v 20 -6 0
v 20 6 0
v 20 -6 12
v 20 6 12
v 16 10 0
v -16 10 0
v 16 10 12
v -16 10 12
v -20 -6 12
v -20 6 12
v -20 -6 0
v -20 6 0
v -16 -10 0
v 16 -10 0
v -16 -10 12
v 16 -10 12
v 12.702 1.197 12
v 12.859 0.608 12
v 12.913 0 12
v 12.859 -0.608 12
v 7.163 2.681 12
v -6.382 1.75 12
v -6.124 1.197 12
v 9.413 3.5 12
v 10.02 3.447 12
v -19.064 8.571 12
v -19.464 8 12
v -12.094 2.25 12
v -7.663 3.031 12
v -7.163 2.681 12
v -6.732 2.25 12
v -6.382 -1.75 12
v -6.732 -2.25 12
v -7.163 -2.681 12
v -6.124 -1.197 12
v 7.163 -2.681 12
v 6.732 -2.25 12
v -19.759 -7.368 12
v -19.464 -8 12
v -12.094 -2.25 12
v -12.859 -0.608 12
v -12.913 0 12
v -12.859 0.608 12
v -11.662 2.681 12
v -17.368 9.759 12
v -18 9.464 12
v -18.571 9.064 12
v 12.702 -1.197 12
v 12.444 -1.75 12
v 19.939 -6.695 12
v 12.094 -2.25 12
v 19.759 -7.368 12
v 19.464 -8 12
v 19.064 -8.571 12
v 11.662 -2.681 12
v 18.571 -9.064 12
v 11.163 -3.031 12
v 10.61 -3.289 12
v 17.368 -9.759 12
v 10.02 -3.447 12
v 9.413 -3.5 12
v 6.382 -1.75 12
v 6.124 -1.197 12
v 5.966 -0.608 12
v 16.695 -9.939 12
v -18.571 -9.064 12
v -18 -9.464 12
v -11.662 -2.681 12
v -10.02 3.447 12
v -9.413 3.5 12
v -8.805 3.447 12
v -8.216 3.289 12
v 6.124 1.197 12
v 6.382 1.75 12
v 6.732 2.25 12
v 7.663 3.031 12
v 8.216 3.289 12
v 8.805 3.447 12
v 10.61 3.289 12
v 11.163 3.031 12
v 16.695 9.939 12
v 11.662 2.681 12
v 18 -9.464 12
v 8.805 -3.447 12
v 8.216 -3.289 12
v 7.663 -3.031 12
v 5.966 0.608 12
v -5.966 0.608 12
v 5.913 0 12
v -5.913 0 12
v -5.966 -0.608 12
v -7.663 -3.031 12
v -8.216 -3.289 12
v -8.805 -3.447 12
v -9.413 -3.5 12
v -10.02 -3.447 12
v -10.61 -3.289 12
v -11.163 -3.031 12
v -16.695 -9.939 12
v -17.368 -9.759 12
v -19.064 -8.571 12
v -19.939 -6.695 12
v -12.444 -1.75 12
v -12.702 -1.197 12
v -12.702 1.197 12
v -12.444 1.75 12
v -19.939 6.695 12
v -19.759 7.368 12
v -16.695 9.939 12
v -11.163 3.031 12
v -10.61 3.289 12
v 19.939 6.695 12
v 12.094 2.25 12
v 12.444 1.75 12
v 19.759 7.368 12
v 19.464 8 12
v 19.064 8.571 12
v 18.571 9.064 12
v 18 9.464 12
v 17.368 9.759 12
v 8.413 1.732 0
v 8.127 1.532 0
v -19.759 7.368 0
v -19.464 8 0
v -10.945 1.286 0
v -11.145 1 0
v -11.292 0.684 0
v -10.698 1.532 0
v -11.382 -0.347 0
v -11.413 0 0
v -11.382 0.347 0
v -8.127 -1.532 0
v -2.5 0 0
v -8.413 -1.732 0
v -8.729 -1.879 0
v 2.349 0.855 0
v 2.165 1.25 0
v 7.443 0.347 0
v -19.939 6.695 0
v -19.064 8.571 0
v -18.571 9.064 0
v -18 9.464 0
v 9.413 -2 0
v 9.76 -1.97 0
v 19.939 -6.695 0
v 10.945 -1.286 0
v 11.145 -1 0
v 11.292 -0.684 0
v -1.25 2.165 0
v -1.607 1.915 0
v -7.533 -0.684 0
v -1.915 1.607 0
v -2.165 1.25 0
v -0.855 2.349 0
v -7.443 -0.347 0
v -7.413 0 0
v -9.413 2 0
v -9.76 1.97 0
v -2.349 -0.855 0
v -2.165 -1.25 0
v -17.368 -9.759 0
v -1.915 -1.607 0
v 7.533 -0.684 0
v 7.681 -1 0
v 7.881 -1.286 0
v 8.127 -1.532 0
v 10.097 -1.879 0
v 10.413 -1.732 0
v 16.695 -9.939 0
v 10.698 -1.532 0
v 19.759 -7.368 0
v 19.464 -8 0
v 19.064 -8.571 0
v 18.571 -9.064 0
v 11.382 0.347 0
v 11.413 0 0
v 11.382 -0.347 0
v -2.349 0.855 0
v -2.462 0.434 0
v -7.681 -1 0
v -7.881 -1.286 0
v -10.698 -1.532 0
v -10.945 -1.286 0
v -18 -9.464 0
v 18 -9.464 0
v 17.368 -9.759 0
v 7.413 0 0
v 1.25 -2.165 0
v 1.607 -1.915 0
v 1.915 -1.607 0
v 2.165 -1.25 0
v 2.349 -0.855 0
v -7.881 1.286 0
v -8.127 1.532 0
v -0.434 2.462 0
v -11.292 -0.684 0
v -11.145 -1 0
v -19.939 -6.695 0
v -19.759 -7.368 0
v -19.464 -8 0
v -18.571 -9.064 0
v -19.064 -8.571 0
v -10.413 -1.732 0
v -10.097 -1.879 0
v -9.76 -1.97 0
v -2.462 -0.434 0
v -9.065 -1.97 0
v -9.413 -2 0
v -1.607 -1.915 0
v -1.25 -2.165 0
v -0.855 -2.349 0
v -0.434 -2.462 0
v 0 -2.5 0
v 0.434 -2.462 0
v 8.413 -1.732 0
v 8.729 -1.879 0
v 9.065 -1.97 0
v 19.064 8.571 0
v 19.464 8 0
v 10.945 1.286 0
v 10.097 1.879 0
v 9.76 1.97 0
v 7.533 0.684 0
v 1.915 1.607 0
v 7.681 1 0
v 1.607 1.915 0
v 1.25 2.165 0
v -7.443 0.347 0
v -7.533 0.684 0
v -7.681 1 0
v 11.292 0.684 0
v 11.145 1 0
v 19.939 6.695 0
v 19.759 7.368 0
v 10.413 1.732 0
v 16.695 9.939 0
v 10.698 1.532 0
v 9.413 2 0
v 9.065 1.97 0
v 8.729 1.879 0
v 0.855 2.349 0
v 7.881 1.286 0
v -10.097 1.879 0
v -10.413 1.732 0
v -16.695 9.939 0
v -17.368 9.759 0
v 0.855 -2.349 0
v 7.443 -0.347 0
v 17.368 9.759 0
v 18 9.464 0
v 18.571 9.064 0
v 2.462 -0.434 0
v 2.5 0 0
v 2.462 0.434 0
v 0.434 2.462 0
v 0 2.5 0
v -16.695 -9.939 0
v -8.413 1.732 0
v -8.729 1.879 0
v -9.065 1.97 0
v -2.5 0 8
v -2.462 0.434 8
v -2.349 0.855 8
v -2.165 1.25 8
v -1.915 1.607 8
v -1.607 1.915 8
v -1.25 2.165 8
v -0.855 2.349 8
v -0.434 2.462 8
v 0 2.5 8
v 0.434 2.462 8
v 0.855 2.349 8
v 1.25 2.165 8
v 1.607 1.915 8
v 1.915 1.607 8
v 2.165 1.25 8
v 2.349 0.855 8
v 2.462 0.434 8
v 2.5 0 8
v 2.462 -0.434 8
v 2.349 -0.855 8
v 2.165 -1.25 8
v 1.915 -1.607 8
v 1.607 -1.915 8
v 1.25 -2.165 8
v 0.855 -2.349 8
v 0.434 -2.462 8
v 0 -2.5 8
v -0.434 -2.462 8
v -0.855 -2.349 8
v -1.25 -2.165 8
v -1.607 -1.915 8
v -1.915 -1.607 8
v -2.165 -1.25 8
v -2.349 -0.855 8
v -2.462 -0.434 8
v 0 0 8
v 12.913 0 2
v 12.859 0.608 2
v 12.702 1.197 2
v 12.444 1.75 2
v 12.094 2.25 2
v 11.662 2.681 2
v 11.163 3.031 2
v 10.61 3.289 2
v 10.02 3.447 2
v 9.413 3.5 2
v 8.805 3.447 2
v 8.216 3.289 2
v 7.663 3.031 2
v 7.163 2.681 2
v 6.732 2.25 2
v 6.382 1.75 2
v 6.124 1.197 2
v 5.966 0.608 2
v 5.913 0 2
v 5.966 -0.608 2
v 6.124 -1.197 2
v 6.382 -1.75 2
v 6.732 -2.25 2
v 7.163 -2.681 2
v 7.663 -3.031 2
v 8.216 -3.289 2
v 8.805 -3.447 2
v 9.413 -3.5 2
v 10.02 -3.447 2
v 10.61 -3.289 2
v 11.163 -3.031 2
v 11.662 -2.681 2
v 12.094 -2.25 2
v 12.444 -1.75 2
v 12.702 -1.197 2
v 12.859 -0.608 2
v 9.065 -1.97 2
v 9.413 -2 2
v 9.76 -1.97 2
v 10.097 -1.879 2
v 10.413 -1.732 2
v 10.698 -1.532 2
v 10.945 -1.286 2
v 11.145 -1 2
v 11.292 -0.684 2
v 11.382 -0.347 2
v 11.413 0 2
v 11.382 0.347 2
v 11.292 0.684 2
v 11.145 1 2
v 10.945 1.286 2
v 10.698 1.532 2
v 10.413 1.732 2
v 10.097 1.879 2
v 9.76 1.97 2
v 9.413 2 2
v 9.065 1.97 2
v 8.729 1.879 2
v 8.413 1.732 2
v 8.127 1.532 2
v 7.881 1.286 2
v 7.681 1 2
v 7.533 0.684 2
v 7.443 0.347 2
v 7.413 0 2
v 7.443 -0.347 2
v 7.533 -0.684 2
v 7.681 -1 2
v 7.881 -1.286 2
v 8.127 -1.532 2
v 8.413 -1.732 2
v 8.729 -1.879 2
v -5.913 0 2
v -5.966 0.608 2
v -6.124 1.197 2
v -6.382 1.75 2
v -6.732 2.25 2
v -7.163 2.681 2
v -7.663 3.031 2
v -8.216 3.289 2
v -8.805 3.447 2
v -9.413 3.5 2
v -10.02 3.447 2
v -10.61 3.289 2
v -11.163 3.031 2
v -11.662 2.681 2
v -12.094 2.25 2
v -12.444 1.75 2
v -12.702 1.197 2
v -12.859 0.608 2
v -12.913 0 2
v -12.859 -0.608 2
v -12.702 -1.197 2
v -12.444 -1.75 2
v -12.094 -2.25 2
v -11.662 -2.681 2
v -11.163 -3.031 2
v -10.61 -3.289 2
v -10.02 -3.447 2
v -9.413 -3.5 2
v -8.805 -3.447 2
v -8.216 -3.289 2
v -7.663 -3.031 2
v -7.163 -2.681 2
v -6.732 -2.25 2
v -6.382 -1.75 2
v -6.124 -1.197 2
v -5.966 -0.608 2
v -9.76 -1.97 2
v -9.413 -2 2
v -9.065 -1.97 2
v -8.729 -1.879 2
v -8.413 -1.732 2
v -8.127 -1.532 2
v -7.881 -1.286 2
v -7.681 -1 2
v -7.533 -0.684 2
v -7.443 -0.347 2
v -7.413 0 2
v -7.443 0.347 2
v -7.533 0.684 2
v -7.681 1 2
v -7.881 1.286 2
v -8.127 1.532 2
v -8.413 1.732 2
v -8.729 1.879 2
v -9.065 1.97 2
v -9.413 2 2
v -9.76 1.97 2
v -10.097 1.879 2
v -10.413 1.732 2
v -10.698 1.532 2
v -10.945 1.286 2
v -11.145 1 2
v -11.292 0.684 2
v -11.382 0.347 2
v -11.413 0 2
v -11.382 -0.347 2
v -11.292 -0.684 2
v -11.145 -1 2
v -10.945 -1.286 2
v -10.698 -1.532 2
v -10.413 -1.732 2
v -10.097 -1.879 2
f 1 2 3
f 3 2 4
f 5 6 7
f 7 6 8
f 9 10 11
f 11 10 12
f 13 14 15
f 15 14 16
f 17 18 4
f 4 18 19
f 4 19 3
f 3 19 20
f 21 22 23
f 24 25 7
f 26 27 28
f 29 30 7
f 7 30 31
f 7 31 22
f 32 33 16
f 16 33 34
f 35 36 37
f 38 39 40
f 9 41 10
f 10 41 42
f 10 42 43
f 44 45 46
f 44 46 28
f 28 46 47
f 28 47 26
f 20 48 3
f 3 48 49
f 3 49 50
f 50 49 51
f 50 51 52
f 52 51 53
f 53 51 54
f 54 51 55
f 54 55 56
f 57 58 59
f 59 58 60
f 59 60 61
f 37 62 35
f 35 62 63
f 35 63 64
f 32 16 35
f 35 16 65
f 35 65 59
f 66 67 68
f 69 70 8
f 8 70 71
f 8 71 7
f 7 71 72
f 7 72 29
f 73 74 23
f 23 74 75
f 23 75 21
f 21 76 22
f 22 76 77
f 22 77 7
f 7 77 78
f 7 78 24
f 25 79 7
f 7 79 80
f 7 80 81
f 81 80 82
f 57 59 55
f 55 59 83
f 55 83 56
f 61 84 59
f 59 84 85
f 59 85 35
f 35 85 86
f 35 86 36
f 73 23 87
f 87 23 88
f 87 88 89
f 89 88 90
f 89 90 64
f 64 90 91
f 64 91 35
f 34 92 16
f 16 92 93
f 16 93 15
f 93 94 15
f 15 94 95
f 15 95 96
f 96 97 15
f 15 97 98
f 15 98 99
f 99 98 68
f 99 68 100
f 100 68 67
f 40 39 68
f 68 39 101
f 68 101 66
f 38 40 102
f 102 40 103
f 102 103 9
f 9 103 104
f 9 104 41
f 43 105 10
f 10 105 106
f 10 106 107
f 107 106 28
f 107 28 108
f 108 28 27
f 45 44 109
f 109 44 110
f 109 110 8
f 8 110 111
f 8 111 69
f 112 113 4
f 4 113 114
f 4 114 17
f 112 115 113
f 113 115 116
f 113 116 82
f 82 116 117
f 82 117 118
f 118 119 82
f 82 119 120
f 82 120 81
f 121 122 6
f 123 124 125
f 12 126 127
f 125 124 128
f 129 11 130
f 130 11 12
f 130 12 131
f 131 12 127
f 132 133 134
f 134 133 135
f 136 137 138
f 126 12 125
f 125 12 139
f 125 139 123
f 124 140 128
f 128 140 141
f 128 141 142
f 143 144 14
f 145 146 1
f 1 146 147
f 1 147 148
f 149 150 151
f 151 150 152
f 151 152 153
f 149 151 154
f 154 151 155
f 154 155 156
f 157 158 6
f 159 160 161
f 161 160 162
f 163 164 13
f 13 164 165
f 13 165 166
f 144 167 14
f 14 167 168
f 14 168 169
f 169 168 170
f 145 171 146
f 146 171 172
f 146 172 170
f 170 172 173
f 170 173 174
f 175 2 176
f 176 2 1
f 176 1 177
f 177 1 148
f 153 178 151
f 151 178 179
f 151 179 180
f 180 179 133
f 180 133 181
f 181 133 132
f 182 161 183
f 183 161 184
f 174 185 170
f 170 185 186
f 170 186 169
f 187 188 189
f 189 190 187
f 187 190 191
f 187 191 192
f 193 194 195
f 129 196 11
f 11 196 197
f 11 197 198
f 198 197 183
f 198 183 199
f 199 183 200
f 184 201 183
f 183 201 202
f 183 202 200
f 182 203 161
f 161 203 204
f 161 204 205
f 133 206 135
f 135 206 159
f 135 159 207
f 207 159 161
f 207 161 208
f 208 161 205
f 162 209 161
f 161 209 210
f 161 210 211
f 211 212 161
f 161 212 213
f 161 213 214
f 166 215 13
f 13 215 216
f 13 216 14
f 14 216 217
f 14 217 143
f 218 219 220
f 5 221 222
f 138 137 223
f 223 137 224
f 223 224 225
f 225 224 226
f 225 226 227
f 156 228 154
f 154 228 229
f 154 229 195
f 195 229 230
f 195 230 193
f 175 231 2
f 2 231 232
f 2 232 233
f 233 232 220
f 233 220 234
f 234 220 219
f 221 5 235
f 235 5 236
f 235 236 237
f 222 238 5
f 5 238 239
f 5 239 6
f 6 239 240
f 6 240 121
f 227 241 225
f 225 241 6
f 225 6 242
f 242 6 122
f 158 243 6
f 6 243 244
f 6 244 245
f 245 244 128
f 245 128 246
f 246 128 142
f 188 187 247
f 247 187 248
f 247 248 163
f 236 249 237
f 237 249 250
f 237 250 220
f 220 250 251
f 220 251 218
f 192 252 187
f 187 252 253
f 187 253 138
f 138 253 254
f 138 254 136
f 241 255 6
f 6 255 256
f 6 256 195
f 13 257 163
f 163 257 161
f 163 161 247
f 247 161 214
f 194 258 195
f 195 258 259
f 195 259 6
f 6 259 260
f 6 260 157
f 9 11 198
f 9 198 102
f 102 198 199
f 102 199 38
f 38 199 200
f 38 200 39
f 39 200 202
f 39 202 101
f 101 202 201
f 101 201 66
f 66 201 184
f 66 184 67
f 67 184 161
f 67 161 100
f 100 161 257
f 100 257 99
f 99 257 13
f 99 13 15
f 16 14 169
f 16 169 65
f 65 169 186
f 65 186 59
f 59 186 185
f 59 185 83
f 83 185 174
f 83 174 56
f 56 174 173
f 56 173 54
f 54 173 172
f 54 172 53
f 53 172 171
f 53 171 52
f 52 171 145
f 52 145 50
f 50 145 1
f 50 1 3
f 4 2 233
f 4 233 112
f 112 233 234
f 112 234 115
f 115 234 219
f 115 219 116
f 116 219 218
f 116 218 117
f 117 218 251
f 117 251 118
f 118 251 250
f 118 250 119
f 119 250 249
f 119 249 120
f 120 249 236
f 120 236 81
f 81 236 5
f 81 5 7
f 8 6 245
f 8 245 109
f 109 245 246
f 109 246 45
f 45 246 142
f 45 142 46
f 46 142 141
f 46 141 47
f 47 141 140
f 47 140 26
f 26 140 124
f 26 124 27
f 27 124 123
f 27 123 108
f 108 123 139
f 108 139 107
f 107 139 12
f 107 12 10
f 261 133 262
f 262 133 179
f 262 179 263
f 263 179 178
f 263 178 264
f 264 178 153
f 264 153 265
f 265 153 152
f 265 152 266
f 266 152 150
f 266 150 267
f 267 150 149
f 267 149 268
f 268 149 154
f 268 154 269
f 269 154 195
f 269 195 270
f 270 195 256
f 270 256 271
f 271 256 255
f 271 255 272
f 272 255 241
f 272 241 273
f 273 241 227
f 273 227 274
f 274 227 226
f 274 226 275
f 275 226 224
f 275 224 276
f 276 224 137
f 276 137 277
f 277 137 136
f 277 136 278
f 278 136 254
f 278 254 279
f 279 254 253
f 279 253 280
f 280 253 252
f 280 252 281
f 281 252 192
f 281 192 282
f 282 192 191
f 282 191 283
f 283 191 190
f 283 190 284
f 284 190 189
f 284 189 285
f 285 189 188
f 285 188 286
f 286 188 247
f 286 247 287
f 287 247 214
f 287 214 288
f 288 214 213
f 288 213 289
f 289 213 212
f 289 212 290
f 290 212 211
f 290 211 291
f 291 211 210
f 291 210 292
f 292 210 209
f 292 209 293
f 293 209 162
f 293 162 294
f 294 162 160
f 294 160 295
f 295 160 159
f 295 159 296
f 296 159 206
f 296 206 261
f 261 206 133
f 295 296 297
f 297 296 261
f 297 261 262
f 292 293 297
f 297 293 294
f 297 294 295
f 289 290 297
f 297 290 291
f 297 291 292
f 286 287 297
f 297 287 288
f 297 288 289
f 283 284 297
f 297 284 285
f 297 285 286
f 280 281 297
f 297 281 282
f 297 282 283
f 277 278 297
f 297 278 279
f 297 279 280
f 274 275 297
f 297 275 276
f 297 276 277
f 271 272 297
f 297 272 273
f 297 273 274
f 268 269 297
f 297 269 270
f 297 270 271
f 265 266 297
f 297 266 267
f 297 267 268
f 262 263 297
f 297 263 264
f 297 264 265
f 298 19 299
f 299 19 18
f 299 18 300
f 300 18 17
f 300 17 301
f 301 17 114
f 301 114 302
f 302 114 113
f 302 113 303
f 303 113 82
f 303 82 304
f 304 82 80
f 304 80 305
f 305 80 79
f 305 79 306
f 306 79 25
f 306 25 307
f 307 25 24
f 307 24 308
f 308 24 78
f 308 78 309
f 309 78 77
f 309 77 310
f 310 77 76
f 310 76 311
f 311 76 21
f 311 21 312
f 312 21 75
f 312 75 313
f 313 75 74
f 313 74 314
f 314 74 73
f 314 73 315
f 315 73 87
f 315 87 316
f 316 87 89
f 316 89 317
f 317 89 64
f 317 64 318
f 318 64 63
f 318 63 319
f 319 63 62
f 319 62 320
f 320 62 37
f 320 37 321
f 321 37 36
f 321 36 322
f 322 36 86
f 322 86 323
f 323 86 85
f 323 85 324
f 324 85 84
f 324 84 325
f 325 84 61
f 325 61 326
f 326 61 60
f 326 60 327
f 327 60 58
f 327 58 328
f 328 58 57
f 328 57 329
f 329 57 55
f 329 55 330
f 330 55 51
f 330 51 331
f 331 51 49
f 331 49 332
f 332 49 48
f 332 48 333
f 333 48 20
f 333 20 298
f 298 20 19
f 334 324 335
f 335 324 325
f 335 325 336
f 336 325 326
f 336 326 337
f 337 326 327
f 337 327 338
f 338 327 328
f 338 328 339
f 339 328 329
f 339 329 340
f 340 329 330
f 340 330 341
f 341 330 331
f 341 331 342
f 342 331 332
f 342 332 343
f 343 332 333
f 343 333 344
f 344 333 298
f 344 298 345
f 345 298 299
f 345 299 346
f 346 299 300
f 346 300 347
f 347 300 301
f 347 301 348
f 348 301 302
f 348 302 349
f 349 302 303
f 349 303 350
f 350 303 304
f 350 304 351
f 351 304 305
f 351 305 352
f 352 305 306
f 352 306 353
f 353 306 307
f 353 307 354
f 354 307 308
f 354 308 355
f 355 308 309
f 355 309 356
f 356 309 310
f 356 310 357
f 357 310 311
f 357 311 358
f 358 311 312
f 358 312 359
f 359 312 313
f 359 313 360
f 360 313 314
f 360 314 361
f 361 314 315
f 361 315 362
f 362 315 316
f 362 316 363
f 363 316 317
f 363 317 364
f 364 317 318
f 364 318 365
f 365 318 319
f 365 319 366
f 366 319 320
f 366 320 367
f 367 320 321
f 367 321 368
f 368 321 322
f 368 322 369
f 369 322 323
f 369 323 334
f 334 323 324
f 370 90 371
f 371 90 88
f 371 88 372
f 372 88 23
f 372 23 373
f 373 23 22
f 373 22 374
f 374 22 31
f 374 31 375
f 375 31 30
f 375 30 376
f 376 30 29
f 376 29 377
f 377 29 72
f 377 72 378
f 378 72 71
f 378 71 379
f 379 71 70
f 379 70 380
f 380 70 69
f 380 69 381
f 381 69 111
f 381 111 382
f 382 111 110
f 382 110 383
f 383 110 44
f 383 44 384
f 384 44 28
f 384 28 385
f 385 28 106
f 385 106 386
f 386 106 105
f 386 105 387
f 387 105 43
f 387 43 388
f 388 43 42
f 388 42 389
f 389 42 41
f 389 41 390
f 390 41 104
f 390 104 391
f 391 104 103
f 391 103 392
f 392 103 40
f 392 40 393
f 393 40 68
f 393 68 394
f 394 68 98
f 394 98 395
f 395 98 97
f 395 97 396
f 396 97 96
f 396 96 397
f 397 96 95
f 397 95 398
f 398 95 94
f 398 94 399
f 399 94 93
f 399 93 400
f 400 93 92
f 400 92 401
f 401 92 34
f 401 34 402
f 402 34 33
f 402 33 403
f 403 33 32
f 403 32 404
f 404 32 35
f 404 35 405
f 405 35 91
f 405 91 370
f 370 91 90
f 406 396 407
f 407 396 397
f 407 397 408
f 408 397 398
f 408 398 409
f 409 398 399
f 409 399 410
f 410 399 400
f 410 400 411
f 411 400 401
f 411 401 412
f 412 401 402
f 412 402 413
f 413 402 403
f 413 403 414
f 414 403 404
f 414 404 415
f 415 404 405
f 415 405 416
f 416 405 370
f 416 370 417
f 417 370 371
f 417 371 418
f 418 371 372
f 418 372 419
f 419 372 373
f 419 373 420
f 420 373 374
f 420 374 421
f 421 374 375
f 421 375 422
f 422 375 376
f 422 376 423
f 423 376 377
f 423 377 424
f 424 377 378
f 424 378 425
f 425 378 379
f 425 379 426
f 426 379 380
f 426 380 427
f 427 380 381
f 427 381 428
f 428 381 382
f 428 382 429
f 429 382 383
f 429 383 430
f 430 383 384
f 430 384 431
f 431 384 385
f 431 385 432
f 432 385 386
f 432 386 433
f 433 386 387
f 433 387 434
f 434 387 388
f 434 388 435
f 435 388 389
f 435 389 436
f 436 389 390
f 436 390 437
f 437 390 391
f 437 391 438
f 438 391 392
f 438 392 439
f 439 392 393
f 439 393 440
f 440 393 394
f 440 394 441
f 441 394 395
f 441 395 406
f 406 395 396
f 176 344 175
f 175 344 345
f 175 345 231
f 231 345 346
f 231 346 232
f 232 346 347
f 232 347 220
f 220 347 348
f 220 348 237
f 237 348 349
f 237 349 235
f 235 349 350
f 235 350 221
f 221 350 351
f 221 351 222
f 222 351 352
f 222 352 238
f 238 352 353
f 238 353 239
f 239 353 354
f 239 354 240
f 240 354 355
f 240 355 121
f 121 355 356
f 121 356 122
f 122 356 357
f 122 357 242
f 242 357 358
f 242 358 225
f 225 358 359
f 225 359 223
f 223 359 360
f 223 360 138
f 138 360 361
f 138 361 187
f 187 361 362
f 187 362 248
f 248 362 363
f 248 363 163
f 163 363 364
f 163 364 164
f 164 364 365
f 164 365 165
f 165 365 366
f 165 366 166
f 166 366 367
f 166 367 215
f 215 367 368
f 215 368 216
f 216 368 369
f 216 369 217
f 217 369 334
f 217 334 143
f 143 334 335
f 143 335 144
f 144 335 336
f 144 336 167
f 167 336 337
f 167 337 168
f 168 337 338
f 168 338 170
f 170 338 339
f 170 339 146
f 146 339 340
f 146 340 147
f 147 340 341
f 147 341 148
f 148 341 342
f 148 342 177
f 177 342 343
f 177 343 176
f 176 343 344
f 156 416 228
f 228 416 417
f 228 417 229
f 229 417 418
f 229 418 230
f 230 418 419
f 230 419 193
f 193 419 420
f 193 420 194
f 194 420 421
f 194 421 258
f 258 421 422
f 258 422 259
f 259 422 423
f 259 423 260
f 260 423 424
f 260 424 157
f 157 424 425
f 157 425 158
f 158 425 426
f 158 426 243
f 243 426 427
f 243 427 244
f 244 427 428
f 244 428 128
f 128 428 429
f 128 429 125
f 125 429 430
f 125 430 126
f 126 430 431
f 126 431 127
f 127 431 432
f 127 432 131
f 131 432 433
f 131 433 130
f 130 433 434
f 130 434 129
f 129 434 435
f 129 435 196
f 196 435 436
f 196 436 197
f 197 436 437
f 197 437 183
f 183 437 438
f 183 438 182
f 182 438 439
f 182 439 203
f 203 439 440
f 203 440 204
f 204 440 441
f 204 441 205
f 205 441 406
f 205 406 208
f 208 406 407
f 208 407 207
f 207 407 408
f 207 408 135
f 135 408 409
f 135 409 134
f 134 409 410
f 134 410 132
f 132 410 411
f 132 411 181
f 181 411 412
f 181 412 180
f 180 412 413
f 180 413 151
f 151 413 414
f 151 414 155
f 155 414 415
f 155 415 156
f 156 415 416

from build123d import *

# Parameters (mm, degrees)
CROQUIS1_W              = 40
CROQUIS1_H              = 20
SALIENTE_EXTRUIR1_DEPTH = 12
REDONDEO1_R             = 4
CROQUIS2_R              = 2.5
CORTAR_EXTRUIR1_DEPTH   = 8
CROQUIS3_R              = 3.5
CORTAR_EXTRUIR2_DEPTH   = 10
CROQUIS4_R              = 2
CORTAR_EXTRUIR3_DEPTH   = 2


with BuildPart() as part:
    # Croquis1 → Saliente-Extruir1 (new body)
    with BuildSketch(Plane.XY):
        Rectangle(CROQUIS1_W, CROQUIS1_H)
    extrude(amount=SALIENTE_EXTRUIR1_DEPTH)

    # Redondeo1
    redondeo1_edges = [part.edges().sort_by_distance(p)[0] for p in [
        (20, -10, 6),
        (-20, -10, 6),
        (-20, 10, 6),
        (20, 10, 6),
    ]]
    fillet(redondeo1_edges, radius=REDONDEO1_R)

    # Croquis2 → Cortar-Extruir1 (cut)
    with BuildSketch(Plane(origin=(0, 0, 0), x_dir=(-1, 0, 0), z_dir=(0, 0, -1))):
        Circle(CROQUIS2_R)
    extrude(amount=-CORTAR_EXTRUIR1_DEPTH, mode=Mode.SUBTRACT)

    # Croquis3 → Cortar-Extruir2 (cut)
    with BuildSketch(Plane.XY.offset(12)):
        with Locations((-9.41266553, 0)):
            Circle(CROQUIS3_R)
        with Locations((9.41266553, 0)):
            Circle(CROQUIS3_R)
    extrude(amount=-CORTAR_EXTRUIR2_DEPTH, mode=Mode.SUBTRACT)

    # Croquis4 → Cortar-Extruir3 (cut)
    with BuildSketch(Plane.XY.offset(2)):
        with Locations((-9.41266553, 0)):
            Circle(CROQUIS4_R)
        with Locations((9.41266553, 0)):
            Circle(CROQUIS4_R)
    extrude(amount=-CORTAR_EXTRUIR3_DEPTH, mode=Mode.SUBTRACT)


solid = part.part
